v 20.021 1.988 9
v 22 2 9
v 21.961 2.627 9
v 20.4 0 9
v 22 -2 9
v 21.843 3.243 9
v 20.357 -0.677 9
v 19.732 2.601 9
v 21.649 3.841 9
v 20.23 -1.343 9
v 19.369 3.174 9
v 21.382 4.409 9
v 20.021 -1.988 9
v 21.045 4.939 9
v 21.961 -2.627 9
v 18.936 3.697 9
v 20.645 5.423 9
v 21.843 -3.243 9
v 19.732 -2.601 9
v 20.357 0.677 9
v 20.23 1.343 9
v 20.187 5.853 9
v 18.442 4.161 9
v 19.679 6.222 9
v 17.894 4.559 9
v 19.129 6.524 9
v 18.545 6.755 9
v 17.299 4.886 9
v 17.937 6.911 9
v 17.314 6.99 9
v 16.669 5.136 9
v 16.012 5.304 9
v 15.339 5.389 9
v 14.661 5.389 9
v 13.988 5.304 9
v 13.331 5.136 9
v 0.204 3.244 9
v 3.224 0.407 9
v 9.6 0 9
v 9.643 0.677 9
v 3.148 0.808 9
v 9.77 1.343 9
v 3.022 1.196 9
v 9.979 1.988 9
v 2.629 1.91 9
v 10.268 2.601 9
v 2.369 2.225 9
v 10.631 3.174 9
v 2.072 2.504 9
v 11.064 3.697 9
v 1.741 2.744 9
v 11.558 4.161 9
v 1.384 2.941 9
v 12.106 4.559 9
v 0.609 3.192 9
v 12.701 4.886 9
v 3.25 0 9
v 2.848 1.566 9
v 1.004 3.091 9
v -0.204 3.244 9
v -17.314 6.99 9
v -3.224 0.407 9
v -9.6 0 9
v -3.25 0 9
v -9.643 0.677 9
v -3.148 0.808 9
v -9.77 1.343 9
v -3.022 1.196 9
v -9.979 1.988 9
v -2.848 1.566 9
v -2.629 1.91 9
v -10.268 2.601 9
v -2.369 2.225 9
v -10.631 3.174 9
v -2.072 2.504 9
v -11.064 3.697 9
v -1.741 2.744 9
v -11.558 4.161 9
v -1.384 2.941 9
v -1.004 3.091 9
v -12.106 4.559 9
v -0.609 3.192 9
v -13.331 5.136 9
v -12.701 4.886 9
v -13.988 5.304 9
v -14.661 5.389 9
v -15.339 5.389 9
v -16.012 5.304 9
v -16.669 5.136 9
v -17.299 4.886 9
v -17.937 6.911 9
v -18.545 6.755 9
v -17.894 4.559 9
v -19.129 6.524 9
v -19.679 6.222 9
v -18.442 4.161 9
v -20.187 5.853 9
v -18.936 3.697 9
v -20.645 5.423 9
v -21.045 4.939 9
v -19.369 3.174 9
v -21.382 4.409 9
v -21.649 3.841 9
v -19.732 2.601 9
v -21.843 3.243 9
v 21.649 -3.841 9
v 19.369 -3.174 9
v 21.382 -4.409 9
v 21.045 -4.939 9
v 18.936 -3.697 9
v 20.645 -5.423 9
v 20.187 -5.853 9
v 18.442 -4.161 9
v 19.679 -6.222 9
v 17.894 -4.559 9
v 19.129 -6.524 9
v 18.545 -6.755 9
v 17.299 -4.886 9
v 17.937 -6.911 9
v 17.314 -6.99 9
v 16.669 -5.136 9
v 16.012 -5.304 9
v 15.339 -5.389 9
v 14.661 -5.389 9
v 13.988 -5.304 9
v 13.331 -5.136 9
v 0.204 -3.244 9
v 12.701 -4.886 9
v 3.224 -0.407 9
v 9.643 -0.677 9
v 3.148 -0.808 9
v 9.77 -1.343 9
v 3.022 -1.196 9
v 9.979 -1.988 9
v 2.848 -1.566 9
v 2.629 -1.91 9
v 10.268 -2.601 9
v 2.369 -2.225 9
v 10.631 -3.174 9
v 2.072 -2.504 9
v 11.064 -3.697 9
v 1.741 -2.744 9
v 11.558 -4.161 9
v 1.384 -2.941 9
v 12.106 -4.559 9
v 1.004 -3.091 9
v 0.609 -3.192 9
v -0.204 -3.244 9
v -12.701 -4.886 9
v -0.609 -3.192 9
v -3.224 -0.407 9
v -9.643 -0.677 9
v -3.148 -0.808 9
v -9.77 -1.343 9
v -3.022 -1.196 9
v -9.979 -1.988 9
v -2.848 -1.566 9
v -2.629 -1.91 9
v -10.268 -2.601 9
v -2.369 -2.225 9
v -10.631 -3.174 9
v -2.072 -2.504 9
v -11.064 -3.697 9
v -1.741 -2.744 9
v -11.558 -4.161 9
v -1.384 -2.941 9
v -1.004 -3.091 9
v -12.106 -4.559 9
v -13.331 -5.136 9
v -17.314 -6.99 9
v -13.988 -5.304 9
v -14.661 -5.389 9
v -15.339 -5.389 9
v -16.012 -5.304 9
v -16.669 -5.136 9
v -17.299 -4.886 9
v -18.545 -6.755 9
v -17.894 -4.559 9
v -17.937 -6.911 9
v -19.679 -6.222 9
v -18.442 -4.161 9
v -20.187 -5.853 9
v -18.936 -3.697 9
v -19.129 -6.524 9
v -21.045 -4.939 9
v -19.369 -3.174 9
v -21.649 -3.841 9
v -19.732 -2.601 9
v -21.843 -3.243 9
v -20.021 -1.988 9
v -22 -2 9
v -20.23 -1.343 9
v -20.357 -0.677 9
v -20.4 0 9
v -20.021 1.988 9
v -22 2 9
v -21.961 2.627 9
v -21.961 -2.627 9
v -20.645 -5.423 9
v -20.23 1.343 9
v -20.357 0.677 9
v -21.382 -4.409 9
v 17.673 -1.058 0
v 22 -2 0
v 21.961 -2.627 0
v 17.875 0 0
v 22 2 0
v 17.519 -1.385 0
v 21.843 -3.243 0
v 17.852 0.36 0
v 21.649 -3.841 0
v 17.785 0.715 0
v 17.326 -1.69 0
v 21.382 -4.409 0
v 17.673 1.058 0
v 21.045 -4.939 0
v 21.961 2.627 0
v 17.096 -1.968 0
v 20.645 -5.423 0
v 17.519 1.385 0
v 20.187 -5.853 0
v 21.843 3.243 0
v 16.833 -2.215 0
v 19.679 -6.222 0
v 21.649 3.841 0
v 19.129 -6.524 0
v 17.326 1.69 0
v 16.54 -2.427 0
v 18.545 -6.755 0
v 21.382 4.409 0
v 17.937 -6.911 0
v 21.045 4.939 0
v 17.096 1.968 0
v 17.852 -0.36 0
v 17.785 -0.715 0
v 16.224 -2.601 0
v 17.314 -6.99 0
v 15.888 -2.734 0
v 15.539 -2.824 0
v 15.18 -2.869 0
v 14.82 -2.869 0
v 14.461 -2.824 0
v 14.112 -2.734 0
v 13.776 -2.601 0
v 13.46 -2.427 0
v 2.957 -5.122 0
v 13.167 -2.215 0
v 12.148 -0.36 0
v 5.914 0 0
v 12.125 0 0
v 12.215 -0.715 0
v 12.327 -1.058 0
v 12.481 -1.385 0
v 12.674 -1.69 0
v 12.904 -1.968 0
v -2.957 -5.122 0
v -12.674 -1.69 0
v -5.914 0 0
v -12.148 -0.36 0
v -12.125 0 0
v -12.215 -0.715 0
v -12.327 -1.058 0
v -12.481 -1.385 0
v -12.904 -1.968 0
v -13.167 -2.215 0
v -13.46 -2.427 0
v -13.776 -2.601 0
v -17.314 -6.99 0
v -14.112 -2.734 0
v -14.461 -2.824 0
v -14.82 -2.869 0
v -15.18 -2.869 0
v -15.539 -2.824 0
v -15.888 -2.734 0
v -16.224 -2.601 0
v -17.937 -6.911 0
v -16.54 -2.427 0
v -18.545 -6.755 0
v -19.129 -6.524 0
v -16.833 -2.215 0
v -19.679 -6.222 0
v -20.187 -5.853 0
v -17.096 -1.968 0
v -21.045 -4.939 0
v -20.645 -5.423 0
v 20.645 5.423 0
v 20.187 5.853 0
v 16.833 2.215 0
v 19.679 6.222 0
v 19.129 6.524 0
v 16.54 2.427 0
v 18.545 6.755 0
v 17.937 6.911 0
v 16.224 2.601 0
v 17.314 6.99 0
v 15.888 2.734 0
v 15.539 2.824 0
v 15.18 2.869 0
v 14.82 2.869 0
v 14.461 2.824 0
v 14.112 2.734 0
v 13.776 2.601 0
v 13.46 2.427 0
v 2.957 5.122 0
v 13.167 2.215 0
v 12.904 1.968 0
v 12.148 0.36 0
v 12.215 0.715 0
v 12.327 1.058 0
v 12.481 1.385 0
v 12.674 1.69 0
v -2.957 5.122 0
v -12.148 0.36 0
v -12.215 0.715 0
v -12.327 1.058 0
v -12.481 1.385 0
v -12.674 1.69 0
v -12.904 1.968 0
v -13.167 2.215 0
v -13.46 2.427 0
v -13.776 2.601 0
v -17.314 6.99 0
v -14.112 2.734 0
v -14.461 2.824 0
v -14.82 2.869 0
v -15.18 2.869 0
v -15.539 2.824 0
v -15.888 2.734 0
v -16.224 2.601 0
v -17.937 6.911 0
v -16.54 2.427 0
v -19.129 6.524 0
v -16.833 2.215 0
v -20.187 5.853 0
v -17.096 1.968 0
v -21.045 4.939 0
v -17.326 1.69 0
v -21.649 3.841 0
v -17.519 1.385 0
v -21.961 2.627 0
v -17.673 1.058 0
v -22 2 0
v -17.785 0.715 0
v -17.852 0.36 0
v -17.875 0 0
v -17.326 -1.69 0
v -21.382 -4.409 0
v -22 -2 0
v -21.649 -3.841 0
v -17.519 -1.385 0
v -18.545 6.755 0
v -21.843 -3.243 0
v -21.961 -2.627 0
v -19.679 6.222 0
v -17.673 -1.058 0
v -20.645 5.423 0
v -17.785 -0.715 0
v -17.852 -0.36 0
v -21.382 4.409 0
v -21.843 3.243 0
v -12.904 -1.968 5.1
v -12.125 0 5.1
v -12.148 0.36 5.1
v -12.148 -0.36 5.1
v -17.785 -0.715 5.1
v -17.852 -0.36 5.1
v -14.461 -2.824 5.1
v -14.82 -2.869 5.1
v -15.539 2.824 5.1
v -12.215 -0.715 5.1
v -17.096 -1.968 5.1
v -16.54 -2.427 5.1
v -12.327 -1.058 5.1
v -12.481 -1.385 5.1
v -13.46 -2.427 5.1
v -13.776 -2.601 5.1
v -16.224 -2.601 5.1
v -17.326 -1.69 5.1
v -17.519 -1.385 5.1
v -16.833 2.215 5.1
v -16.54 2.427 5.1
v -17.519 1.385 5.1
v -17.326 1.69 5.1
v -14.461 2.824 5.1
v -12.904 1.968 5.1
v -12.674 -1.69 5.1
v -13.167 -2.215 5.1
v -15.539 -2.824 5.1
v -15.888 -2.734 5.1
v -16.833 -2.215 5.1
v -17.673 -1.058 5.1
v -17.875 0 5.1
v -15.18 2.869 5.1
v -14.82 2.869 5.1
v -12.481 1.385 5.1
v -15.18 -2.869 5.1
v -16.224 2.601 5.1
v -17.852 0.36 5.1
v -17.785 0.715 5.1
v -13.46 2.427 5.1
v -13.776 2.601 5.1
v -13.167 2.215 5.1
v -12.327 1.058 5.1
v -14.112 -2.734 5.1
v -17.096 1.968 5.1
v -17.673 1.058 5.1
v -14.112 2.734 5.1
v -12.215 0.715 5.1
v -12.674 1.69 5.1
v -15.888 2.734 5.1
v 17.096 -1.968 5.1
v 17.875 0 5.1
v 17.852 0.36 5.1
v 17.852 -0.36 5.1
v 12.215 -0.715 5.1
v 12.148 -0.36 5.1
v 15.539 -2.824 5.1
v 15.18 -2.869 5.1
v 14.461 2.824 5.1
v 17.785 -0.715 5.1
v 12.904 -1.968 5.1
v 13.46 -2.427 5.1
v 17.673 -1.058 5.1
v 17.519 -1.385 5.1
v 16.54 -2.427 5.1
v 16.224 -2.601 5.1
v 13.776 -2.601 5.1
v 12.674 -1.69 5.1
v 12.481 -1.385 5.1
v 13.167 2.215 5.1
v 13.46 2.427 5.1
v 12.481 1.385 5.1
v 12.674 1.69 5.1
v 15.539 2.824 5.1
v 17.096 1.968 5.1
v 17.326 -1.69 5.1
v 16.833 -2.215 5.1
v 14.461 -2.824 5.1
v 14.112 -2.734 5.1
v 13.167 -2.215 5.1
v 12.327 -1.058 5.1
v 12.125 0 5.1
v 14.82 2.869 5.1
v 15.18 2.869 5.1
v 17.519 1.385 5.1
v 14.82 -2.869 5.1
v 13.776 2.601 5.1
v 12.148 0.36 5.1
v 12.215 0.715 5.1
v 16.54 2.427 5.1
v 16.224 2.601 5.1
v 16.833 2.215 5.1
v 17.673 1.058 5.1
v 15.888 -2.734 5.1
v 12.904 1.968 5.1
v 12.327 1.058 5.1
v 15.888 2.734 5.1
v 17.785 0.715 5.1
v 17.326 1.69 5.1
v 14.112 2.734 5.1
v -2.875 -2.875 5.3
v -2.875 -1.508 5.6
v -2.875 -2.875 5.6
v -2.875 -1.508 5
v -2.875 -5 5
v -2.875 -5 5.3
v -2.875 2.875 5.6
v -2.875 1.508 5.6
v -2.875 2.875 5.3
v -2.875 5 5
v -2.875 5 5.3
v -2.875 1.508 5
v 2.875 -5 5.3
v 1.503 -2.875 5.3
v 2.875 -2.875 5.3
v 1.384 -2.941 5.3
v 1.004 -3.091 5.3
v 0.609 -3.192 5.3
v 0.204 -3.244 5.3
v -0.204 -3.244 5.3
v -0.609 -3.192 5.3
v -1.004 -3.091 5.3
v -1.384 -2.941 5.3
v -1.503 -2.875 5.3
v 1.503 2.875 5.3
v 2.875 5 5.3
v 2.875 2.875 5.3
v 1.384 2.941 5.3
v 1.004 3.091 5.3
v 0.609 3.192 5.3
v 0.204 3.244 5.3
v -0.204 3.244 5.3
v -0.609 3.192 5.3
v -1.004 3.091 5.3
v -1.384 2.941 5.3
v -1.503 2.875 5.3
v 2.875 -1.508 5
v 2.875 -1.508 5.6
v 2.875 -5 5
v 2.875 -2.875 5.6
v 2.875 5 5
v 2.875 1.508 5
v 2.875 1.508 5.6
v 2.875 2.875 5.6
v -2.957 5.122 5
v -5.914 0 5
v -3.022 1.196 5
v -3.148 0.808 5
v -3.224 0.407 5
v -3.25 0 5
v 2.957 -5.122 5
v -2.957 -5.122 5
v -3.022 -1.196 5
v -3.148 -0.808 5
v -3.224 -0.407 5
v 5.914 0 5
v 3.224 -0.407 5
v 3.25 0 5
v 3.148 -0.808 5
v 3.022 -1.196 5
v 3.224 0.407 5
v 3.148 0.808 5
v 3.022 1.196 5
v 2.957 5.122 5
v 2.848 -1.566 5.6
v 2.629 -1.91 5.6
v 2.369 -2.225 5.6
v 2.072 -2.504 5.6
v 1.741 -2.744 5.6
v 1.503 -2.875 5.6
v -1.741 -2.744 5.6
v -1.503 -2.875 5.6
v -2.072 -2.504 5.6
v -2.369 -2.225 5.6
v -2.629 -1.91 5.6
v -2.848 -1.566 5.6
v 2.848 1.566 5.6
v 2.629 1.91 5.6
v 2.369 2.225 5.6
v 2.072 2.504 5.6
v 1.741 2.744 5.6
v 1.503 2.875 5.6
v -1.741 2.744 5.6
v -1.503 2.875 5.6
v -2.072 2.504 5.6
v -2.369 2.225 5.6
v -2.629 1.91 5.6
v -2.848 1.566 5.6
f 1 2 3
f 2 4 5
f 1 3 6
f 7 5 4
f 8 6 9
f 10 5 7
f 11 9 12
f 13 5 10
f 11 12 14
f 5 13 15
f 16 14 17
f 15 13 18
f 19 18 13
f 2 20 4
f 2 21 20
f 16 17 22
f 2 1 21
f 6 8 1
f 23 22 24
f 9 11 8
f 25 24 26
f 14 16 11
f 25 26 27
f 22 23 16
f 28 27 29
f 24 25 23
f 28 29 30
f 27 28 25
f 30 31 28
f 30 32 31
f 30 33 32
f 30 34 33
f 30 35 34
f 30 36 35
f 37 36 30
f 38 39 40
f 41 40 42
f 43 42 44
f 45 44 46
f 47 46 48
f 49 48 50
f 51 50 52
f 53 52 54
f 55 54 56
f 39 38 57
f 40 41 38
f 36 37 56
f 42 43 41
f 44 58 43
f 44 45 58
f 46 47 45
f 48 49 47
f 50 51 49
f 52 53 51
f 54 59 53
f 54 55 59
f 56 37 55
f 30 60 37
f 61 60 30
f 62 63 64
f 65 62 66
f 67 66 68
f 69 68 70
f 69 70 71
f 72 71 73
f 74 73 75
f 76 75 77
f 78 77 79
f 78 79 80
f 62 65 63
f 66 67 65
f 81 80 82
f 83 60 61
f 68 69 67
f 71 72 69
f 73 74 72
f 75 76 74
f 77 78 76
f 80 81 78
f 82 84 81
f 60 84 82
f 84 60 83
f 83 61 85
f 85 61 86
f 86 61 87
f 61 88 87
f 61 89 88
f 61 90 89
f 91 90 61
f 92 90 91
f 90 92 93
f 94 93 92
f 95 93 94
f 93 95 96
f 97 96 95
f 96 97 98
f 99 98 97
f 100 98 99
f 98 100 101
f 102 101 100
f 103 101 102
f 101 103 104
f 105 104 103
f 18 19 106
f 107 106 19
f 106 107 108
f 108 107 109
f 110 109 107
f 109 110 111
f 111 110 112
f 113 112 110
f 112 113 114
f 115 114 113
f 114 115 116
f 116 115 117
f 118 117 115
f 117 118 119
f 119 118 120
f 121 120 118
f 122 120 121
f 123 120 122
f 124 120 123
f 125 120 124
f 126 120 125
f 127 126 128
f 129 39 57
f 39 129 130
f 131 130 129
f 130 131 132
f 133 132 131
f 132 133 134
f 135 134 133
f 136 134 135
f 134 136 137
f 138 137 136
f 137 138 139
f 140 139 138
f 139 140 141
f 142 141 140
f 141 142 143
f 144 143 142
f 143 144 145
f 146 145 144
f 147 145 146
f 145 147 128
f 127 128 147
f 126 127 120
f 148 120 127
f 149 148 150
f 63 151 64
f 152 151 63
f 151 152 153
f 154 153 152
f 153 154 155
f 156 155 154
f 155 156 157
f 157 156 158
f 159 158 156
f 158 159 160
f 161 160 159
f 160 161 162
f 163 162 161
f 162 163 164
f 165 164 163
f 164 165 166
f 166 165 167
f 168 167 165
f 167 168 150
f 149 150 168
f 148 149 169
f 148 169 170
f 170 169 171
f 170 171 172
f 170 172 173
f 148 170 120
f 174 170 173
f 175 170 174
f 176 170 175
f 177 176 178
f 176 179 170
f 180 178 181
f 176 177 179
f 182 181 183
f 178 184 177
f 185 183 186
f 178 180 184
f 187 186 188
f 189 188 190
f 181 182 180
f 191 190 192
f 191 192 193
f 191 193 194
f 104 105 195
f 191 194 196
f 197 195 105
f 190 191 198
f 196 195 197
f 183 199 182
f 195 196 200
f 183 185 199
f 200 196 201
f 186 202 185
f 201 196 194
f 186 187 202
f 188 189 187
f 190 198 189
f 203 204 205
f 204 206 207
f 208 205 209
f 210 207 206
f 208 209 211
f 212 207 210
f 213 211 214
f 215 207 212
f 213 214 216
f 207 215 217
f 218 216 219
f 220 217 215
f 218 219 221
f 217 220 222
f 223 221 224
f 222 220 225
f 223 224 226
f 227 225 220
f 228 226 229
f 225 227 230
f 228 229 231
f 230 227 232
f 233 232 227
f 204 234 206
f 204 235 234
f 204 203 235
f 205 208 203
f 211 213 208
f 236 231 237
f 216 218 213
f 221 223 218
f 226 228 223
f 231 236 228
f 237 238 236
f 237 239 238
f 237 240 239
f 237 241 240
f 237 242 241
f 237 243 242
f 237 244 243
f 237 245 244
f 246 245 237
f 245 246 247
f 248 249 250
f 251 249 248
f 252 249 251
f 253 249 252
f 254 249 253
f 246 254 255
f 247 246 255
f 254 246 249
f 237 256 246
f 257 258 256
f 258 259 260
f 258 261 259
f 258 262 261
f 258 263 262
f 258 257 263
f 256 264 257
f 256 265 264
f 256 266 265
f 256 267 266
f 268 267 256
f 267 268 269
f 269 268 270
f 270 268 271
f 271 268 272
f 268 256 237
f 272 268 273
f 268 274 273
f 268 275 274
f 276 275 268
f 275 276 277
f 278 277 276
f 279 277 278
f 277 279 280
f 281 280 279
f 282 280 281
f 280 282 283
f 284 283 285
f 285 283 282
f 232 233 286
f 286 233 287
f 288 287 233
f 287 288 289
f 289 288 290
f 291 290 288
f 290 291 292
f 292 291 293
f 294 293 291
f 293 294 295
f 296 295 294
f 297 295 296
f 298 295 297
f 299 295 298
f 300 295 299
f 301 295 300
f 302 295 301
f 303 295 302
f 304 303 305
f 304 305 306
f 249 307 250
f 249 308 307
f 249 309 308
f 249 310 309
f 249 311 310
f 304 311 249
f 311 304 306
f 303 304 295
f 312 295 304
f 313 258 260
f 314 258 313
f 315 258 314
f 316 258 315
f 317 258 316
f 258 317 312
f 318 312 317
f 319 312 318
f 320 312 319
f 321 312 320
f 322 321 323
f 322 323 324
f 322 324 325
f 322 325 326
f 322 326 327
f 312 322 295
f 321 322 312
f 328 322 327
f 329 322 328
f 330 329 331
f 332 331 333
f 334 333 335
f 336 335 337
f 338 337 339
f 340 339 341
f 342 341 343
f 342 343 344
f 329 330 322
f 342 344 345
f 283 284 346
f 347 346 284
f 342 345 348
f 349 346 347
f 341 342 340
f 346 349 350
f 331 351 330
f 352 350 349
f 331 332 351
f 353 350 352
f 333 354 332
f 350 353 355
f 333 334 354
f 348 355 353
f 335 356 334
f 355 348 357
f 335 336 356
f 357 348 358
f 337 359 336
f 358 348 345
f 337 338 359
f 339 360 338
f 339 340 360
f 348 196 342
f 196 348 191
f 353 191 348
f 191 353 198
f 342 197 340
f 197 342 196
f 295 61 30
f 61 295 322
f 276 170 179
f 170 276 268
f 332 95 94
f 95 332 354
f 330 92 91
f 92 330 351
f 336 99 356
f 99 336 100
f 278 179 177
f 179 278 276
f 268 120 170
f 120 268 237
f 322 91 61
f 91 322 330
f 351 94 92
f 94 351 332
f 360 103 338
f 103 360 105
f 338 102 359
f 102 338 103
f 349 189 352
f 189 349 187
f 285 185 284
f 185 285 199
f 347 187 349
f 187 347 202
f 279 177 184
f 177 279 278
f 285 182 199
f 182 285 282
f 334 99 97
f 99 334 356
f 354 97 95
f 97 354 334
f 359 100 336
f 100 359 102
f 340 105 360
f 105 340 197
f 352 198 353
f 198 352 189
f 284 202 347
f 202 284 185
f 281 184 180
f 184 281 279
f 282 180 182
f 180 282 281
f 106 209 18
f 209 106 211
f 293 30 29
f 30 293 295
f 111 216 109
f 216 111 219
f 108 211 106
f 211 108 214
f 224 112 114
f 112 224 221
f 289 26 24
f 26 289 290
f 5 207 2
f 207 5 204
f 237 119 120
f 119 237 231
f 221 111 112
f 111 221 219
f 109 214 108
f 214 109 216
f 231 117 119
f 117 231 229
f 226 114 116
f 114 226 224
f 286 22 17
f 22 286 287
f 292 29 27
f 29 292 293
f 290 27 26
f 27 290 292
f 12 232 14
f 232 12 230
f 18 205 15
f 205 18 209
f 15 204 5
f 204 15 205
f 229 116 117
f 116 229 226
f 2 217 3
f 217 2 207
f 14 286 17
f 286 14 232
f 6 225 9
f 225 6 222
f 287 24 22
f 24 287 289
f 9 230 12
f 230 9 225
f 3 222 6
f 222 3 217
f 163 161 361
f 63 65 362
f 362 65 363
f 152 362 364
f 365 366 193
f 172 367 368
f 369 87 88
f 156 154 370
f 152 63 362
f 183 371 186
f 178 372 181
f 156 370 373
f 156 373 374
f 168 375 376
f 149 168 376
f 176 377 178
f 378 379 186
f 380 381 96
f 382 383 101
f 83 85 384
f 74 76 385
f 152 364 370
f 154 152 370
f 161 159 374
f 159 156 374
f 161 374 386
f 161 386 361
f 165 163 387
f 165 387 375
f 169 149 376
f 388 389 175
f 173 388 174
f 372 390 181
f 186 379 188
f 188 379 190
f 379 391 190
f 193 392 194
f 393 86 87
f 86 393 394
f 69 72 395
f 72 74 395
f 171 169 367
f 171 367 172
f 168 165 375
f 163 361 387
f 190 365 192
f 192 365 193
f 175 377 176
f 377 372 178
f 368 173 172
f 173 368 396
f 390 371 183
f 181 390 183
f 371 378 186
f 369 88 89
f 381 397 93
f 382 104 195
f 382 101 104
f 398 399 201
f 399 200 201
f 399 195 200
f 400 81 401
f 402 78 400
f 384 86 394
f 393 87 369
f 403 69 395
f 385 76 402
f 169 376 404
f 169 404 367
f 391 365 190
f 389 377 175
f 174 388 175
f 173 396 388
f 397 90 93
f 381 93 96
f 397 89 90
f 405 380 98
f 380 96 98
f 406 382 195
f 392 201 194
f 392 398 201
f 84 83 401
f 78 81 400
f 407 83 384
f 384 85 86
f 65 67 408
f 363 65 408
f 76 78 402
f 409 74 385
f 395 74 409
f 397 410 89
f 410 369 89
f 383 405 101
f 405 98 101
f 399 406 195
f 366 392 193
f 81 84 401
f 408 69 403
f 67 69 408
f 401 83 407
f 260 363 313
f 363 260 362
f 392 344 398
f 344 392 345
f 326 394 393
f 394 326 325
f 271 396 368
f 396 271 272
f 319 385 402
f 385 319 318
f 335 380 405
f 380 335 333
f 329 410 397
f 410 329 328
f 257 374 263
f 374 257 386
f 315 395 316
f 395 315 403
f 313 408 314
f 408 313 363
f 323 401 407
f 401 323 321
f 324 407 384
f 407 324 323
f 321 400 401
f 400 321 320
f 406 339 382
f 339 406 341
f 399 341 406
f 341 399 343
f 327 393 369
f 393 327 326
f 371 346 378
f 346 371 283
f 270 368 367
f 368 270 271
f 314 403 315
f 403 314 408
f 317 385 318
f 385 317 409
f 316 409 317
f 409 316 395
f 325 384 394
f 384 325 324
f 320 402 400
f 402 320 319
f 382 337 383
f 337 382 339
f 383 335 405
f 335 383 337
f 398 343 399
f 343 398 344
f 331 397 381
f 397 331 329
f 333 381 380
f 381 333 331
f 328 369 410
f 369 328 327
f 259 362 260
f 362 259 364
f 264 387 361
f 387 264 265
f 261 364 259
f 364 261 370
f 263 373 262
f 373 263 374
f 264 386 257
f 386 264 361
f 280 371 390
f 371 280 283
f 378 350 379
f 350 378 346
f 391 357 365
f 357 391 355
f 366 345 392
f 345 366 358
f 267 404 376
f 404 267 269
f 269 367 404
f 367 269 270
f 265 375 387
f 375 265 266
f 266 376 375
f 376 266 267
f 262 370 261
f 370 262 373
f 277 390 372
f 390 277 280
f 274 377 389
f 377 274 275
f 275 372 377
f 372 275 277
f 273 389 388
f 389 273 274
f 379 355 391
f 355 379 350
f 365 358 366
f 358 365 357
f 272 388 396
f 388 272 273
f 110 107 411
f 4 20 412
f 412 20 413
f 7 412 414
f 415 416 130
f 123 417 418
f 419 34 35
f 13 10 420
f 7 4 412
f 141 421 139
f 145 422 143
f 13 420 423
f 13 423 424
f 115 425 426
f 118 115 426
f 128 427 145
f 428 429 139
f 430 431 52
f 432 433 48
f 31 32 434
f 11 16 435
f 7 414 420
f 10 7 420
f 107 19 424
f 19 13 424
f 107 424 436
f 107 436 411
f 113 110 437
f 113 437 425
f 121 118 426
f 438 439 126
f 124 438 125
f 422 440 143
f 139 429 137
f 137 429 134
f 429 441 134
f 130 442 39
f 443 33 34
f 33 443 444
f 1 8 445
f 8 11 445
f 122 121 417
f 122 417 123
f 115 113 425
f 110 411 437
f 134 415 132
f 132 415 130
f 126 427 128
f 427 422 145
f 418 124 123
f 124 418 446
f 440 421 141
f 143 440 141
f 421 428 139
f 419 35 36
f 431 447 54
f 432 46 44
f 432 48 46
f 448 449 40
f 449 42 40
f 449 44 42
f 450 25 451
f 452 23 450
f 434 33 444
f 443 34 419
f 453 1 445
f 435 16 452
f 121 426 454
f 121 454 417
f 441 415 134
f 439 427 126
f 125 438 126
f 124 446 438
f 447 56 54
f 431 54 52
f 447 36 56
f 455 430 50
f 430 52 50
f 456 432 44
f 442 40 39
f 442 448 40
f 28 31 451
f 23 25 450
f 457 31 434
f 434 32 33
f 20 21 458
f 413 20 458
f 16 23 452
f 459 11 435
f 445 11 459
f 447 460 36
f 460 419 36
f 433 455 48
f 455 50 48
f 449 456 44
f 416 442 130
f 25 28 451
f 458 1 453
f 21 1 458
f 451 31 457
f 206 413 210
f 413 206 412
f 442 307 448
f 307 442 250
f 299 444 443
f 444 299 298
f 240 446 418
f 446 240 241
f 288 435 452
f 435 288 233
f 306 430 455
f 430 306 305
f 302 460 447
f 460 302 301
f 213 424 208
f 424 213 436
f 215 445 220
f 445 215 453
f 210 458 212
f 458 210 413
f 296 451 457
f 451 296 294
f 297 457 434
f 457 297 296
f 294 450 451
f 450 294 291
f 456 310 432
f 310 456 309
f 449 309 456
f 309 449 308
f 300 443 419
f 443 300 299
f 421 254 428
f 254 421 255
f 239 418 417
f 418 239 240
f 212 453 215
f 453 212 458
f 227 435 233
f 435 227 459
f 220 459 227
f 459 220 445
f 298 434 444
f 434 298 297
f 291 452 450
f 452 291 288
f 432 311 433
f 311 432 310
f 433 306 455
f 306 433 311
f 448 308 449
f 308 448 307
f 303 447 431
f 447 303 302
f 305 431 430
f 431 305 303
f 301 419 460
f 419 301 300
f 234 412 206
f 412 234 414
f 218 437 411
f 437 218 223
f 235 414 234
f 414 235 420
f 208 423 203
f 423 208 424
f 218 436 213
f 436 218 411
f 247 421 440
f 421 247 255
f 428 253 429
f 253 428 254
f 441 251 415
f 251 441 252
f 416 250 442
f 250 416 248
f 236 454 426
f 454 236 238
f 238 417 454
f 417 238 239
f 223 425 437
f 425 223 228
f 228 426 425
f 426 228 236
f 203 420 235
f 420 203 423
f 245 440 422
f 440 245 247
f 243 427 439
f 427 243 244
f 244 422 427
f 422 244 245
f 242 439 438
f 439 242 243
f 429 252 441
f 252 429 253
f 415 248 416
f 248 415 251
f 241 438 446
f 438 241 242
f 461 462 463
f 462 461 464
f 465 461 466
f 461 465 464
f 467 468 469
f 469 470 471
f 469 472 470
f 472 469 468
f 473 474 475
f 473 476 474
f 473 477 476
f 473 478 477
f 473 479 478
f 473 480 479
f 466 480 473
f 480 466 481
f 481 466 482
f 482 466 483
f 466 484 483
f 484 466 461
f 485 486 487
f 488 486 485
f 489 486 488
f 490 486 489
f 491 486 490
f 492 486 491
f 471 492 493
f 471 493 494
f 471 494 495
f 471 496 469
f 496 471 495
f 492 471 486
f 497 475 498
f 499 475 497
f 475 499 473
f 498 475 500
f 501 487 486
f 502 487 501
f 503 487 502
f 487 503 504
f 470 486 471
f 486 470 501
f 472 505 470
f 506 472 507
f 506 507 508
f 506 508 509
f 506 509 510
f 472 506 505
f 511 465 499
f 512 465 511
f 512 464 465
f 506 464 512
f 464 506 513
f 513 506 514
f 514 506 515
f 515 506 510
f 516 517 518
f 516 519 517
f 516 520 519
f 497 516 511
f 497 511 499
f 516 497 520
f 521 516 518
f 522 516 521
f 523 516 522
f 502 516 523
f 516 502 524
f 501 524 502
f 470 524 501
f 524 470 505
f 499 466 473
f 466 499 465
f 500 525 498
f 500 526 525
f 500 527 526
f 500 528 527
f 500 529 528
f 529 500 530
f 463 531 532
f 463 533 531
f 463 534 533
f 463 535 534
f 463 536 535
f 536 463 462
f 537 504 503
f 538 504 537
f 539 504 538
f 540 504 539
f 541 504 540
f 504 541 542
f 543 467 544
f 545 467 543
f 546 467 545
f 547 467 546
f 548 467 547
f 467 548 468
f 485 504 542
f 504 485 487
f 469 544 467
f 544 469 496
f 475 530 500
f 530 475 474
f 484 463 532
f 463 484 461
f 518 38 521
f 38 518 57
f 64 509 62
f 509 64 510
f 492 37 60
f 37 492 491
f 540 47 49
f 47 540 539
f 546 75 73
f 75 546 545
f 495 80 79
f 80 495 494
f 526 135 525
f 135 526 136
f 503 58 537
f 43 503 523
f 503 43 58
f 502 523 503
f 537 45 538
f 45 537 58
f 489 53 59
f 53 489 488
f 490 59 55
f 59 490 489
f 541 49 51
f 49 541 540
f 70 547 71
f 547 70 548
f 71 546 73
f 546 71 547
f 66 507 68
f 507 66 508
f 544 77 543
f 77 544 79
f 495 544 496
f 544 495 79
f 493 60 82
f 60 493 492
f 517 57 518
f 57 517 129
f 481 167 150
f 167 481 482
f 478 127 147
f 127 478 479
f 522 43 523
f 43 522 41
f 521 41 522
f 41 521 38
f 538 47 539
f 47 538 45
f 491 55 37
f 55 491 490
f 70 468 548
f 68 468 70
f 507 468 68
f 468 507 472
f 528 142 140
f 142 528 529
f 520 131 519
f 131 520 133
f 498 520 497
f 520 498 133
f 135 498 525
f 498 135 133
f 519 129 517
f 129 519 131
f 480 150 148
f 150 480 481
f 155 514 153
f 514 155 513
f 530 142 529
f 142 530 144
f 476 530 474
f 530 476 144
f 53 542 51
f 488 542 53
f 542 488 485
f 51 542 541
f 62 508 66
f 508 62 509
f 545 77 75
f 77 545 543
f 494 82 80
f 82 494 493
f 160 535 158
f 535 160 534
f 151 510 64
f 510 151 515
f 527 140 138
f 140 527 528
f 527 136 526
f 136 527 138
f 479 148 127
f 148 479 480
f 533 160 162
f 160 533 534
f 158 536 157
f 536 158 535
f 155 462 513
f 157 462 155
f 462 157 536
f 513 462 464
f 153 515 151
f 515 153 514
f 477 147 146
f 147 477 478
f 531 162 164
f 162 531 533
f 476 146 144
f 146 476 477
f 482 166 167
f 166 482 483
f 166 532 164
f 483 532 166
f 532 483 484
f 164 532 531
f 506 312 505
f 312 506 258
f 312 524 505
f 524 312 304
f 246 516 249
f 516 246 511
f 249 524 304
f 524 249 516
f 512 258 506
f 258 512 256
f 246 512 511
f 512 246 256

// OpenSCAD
$fn = 50;


difference() {
	union() {
		cylinder(h = 9, r = 7.0000000000);
		translate(v = [-7.5000000000, 0.0000000000, 0]) {
			hull() {
				translate(v = [-9.5000000000, 2.0000000000, 0]) {
					cylinder(h = 9, r = 5);
				}
				translate(v = [9.5000000000, 2.0000000000, 0]) {
					cylinder(h = 9, r = 5);
				}
				translate(v = [-9.5000000000, -2.0000000000, 0]) {
					cylinder(h = 9, r = 5);
				}
				translate(v = [9.5000000000, -2.0000000000, 0]) {
					cylinder(h = 9, r = 5);
				}
			}
		}
		translate(v = [-7.5000000000, 0.0000000000, 0]) {
			hull() {
				translate(v = [-9.5000000000, 2.0000000000, 0]) {
					cylinder(h = 9, r = 5);
				}
				translate(v = [9.5000000000, 2.0000000000, 0]) {
					cylinder(h = 9, r = 5);
				}
				translate(v = [-9.5000000000, -2.0000000000, 0]) {
					cylinder(h = 9, r = 5);
				}
				translate(v = [9.5000000000, -2.0000000000, 0]) {
					cylinder(h = 9, r = 5);
				}
			}
		}
		translate(v = [7.5000000000, 0.0000000000, 0]) {
			hull() {
				translate(v = [-9.5000000000, 2.0000000000, 0]) {
					cylinder(h = 9, r = 5);
				}
				translate(v = [9.5000000000, 2.0000000000, 0]) {
					cylinder(h = 9, r = 5);
				}
				translate(v = [-9.5000000000, -2.0000000000, 0]) {
					cylinder(h = 9, r = 5);
				}
				translate(v = [9.5000000000, -2.0000000000, 0]) {
					cylinder(h = 9, r = 5);
				}
			}
		}
		translate(v = [7.5000000000, 0.0000000000, 0]) {
			hull() {
				translate(v = [-9.5000000000, 2.0000000000, 0]) {
					cylinder(h = 9, r = 5);
				}
				translate(v = [9.5000000000, 2.0000000000, 0]) {
					cylinder(h = 9, r = 5);
				}
				translate(v = [-9.5000000000, -2.0000000000, 0]) {
					cylinder(h = 9, r = 5);
				}
				translate(v = [9.5000000000, -2.0000000000, 0]) {
					cylinder(h = 9, r = 5);
				}
			}
		}
	}
	union() {
		translate(v = [-15.0000000000, 0.0000000000, 9]) {
			rotate(a = [0, 0, 0]) {
				difference() {
					union() {
						#translate(v = [0, 0, -9.0000000000]) {
							cylinder(h = 9, r = 2.6000000000);
						}
						#translate(v = [0, 0, -3.9000000000]) {
							cylinder(h = 3.9000000000, r1 = 2.8750000000, r2 = 5.4000000000);
						}
						#translate(v = [0, 0, -9.0000000000]) {
							cylinder(h = 9, r = 2.8750000000);
						}
						#translate(v = [0, 0, -9.0000000000]) {
							cylinder(h = 9, r = 2.6000000000);
						}
					}
					union();
				}
			}
		}
		translate(v = [-15.0000000000, 0.0000000000, 9]) {
			rotate(a = [0, 0, 0]) {
				difference() {
					union() {
						#translate(v = [0, 0, -9.0000000000]) {
							cylinder(h = 9, r = 2.6000000000);
						}
						#translate(v = [0, 0, -3.9000000000]) {
							cylinder(h = 3.9000000000, r1 = 2.8750000000, r2 = 5.4000000000);
						}
						#translate(v = [0, 0, -9.0000000000]) {
							cylinder(h = 9, r = 2.8750000000);
						}
						#translate(v = [0, 0, -9.0000000000]) {
							cylinder(h = 9, r = 2.6000000000);
						}
					}
					union();
				}
			}
		}
		translate(v = [15.0000000000, 0.0000000000, 9]) {
			rotate(a = [0, 0, 0]) {
				difference() {
					union() {
						#translate(v = [0, 0, -9.0000000000]) {
							cylinder(h = 9, r = 2.6000000000);
						}
						#translate(v = [0, 0, -3.9000000000]) {
							cylinder(h = 3.9000000000, r1 = 2.8750000000, r2 = 5.4000000000);
						}
						#translate(v = [0, 0, -9.0000000000]) {
							cylinder(h = 9, r = 2.8750000000);
						}
						#translate(v = [0, 0, -9.0000000000]) {
							cylinder(h = 9, r = 2.6000000000);
						}
					}
					union();
				}
			}
		}
		translate(v = [15.0000000000, 0.0000000000, 9]) {
			rotate(a = [0, 0, 0]) {
				difference() {
					union() {
						#translate(v = [0, 0, -9.0000000000]) {
							cylinder(h = 9, r = 2.6000000000);
						}
						#translate(v = [0, 0, -3.9000000000]) {
							cylinder(h = 3.9000000000, r1 = 2.8750000000, r2 = 5.4000000000);
						}
						#translate(v = [0, 0, -9.0000000000]) {
							cylinder(h = 9, r = 2.8750000000);
						}
						#translate(v = [0, 0, -9.0000000000]) {
							cylinder(h = 9, r = 2.6000000000);
						}
					}
					union();
				}
			}
		}
		translate(v = [0.0000000000, 0.0000000000, 0]) {
			rotate(a = [0, 0, 0]) {
				difference() {
					union() {
						#translate(v = [-2.8750000000, -5.0000000000, -0.3000000000]) {
							cube(size = [5.7500000000, 10, 0.3000000000]);
						}
						#translate(v = [-2.8750000000, -2.8750000000, -0.6000000000]) {
							cube(size = [5.7500000000, 5.7500000000, 0.3000000000]);
						}
						#translate(v = [-2.8750000000, -5.0000000000, 5]) {
							cube(size = [5.7500000000, 10, 0.3000000000]);
						}
						#translate(v = [-2.8750000000, -2.8750000000, 5.3000000000]) {
							cube(size = [5.7500000000, 5.7500000000, 0.3000000000]);
						}
						#translate(v = [0, 0, -100.0000000000]) {
							cylinder(h = 200, r = 3.2500000000);
						}
						#linear_extrude(height = 5) {
							polygon(points = [[5.9142500000, 0.0000000000], [2.9571250000, 5.1218907443], [-2.9571250000, 5.1218907443], [-5.9142500000, 0.0000000000], [-2.9571250000, -5.1218907443], [2.9571250000, -5.1218907443]]);
						}
						#translate(v = [-2.8750000000, -5.0000000000, -0.3000000000]) {
							cube(size = [5.7500000000, 10, 0.3000000000]);
						}
						#translate(v = [-2.8750000000, -2.8750000000, -0.6000000000]) {
							cube(size = [5.7500000000, 5.7500000000, 0.3000000000]);
						}
						#translate(v = [-2.8750000000, -5.0000000000, 5]) {
							cube(size = [5.7500000000, 10, 0.3000000000]);
						}
						#translate(v = [-2.8750000000, -2.8750000000, 5.3000000000]) {
							cube(size = [5.7500000000, 5.7500000000, 0.3000000000]);
						}
						#translate(v = [0, 0, -100.0000000000]) {
							cylinder(h = 200, r = 3.2500000000);
						}
						#translate(v = [-2.8750000000, -5.0000000000, -0.3000000000]) {
							cube(size = [5.7500000000, 10, 0.3000000000]);
						}
						#translate(v = [-2.8750000000, -2.8750000000, -0.6000000000]) {
							cube(size = [5.7500000000, 5.7500000000, 0.3000000000]);
						}
						#translate(v = [-2.8750000000, -5.0000000000, 5]) {
							cube(size = [5.7500000000, 10, 0.3000000000]);
						}
						#translate(v = [-2.8750000000, -2.8750000000, 5.3000000000]) {
							cube(size = [5.7500000000, 5.7500000000, 0.3000000000]);
						}
						#translate(v = [0, 0, -100.0000000000]) {
							cylinder(h = 200, r = 3.2500000000);
						}
					}
					union();
				}
			}
		}
		translate(v = [0, 0, -100]) {
			cylinder(h = 200, r = 3.2500000000);
		}
		translate(v = [0, 0, -100]) {
			cylinder(h = 200, r = 1.8000000000);
		}
	}
}
